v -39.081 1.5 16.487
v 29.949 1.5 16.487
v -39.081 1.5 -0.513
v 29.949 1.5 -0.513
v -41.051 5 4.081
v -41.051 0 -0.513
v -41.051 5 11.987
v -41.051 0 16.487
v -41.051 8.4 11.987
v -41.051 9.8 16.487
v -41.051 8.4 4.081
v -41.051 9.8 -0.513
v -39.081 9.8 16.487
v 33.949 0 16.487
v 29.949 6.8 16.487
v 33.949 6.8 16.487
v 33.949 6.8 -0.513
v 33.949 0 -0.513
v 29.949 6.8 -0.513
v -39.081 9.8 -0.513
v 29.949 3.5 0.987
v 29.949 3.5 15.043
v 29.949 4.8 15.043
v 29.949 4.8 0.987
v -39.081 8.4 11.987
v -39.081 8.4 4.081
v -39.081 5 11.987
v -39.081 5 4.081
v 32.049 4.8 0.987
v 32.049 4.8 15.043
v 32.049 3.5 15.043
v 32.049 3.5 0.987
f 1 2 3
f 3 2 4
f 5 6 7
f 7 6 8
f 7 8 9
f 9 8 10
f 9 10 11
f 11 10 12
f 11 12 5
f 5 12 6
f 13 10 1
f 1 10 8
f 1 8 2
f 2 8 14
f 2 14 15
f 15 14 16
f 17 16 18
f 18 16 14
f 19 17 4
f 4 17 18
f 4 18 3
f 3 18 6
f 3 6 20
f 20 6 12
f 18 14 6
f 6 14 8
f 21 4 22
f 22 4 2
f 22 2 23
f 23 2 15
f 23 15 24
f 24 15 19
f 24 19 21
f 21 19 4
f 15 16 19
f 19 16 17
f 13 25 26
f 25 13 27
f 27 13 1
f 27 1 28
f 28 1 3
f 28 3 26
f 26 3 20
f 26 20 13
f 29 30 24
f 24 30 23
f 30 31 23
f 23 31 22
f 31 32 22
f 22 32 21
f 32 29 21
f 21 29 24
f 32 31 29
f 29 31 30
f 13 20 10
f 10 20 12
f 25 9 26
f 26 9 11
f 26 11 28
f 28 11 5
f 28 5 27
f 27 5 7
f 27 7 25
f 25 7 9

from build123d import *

# Parameters (mm, degrees)
SKETCH1_W           = 75
SKETCH1_H           = 17
BOSS_EXTRUDE1_DEPTH = 1.5
SKETCH2_W           = 4
SKETCH2_H           = 17
SKETCH2_W_2         = 1.969333236
BOSS_EXTRUDE2_DEPTH = 5.3
SKETCH3_W           = 14.056018955
SKETCH3_H           = 1.3
CUT_EXTRUDE1_DEPTH  = 2.1
SKETCH4_W           = 1.969333236
SKETCH4_H           = 17
BOSS_EXTRUDE3_DEPTH = 3
SKETCH5_W           = 7.906104095
SKETCH5_H           = 3.4
CUT_EXTRUDE3_DEPTH  = 33


with BuildPart() as part:
    # Sketch1 → Boss-Extrude1 (new body)
    with BuildSketch(Plane(origin=(0, 0, 0), x_dir=(1, 0, 0), z_dir=(0, 1, 0))):
        with Locations((-3.550742823, -7.98686986)):
            Rectangle(SKETCH1_W, SKETCH1_H)
    extrude(amount=BOSS_EXTRUDE1_DEPTH)

    # Sketch2 → Boss-Extrude2 (add)
    with BuildSketch(Plane(origin=(0, 1.5, 0), x_dir=(1, 0, 0), z_dir=(0, 1, 0))):
        with Locations((31.949257177, -7.98686986)):
            Rectangle(SKETCH2_W, SKETCH2_H)
        with Locations((-40.066076205, -7.98686986)):
            Rectangle(SKETCH2_W_2, SKETCH2_H)
    extrude(amount=BOSS_EXTRUDE2_DEPTH)

    # Sketch3 → Cut-Extrude1 (cut)
    with BuildSketch(Plane.ZY.offset(-29.949257177)):
        with Locations((8.014879338, 4.15)):
            Rectangle(SKETCH3_W, SKETCH3_H)
    extrude(amount=-CUT_EXTRUDE1_DEPTH, mode=Mode.SUBTRACT)

    # Sketch4 → Boss-Extrude3 (add)
    with BuildSketch(Plane(origin=(0, 6.8, 0), x_dir=(1, 0, 0), z_dir=(0, 1, 0))):
        with Locations((-40.066076205, -7.98686986)):
            Rectangle(SKETCH4_W, SKETCH4_H)
    extrude(amount=BOSS_EXTRUDE3_DEPTH)

    # Sketch5 → Cut-Extrude3 (cut)
    with BuildSketch(Plane(origin=(-39.081409587, 0, 0), x_dir=(0, 0, -1), z_dir=(1, 0, 0))):
        with Locations((-8.033817813, 6.7)):
            Rectangle(SKETCH5_W, SKETCH5_H)
    extrude(amount=-CUT_EXTRUDE3_DEPTH, mode=Mode.SUBTRACT)


solid = part.part
